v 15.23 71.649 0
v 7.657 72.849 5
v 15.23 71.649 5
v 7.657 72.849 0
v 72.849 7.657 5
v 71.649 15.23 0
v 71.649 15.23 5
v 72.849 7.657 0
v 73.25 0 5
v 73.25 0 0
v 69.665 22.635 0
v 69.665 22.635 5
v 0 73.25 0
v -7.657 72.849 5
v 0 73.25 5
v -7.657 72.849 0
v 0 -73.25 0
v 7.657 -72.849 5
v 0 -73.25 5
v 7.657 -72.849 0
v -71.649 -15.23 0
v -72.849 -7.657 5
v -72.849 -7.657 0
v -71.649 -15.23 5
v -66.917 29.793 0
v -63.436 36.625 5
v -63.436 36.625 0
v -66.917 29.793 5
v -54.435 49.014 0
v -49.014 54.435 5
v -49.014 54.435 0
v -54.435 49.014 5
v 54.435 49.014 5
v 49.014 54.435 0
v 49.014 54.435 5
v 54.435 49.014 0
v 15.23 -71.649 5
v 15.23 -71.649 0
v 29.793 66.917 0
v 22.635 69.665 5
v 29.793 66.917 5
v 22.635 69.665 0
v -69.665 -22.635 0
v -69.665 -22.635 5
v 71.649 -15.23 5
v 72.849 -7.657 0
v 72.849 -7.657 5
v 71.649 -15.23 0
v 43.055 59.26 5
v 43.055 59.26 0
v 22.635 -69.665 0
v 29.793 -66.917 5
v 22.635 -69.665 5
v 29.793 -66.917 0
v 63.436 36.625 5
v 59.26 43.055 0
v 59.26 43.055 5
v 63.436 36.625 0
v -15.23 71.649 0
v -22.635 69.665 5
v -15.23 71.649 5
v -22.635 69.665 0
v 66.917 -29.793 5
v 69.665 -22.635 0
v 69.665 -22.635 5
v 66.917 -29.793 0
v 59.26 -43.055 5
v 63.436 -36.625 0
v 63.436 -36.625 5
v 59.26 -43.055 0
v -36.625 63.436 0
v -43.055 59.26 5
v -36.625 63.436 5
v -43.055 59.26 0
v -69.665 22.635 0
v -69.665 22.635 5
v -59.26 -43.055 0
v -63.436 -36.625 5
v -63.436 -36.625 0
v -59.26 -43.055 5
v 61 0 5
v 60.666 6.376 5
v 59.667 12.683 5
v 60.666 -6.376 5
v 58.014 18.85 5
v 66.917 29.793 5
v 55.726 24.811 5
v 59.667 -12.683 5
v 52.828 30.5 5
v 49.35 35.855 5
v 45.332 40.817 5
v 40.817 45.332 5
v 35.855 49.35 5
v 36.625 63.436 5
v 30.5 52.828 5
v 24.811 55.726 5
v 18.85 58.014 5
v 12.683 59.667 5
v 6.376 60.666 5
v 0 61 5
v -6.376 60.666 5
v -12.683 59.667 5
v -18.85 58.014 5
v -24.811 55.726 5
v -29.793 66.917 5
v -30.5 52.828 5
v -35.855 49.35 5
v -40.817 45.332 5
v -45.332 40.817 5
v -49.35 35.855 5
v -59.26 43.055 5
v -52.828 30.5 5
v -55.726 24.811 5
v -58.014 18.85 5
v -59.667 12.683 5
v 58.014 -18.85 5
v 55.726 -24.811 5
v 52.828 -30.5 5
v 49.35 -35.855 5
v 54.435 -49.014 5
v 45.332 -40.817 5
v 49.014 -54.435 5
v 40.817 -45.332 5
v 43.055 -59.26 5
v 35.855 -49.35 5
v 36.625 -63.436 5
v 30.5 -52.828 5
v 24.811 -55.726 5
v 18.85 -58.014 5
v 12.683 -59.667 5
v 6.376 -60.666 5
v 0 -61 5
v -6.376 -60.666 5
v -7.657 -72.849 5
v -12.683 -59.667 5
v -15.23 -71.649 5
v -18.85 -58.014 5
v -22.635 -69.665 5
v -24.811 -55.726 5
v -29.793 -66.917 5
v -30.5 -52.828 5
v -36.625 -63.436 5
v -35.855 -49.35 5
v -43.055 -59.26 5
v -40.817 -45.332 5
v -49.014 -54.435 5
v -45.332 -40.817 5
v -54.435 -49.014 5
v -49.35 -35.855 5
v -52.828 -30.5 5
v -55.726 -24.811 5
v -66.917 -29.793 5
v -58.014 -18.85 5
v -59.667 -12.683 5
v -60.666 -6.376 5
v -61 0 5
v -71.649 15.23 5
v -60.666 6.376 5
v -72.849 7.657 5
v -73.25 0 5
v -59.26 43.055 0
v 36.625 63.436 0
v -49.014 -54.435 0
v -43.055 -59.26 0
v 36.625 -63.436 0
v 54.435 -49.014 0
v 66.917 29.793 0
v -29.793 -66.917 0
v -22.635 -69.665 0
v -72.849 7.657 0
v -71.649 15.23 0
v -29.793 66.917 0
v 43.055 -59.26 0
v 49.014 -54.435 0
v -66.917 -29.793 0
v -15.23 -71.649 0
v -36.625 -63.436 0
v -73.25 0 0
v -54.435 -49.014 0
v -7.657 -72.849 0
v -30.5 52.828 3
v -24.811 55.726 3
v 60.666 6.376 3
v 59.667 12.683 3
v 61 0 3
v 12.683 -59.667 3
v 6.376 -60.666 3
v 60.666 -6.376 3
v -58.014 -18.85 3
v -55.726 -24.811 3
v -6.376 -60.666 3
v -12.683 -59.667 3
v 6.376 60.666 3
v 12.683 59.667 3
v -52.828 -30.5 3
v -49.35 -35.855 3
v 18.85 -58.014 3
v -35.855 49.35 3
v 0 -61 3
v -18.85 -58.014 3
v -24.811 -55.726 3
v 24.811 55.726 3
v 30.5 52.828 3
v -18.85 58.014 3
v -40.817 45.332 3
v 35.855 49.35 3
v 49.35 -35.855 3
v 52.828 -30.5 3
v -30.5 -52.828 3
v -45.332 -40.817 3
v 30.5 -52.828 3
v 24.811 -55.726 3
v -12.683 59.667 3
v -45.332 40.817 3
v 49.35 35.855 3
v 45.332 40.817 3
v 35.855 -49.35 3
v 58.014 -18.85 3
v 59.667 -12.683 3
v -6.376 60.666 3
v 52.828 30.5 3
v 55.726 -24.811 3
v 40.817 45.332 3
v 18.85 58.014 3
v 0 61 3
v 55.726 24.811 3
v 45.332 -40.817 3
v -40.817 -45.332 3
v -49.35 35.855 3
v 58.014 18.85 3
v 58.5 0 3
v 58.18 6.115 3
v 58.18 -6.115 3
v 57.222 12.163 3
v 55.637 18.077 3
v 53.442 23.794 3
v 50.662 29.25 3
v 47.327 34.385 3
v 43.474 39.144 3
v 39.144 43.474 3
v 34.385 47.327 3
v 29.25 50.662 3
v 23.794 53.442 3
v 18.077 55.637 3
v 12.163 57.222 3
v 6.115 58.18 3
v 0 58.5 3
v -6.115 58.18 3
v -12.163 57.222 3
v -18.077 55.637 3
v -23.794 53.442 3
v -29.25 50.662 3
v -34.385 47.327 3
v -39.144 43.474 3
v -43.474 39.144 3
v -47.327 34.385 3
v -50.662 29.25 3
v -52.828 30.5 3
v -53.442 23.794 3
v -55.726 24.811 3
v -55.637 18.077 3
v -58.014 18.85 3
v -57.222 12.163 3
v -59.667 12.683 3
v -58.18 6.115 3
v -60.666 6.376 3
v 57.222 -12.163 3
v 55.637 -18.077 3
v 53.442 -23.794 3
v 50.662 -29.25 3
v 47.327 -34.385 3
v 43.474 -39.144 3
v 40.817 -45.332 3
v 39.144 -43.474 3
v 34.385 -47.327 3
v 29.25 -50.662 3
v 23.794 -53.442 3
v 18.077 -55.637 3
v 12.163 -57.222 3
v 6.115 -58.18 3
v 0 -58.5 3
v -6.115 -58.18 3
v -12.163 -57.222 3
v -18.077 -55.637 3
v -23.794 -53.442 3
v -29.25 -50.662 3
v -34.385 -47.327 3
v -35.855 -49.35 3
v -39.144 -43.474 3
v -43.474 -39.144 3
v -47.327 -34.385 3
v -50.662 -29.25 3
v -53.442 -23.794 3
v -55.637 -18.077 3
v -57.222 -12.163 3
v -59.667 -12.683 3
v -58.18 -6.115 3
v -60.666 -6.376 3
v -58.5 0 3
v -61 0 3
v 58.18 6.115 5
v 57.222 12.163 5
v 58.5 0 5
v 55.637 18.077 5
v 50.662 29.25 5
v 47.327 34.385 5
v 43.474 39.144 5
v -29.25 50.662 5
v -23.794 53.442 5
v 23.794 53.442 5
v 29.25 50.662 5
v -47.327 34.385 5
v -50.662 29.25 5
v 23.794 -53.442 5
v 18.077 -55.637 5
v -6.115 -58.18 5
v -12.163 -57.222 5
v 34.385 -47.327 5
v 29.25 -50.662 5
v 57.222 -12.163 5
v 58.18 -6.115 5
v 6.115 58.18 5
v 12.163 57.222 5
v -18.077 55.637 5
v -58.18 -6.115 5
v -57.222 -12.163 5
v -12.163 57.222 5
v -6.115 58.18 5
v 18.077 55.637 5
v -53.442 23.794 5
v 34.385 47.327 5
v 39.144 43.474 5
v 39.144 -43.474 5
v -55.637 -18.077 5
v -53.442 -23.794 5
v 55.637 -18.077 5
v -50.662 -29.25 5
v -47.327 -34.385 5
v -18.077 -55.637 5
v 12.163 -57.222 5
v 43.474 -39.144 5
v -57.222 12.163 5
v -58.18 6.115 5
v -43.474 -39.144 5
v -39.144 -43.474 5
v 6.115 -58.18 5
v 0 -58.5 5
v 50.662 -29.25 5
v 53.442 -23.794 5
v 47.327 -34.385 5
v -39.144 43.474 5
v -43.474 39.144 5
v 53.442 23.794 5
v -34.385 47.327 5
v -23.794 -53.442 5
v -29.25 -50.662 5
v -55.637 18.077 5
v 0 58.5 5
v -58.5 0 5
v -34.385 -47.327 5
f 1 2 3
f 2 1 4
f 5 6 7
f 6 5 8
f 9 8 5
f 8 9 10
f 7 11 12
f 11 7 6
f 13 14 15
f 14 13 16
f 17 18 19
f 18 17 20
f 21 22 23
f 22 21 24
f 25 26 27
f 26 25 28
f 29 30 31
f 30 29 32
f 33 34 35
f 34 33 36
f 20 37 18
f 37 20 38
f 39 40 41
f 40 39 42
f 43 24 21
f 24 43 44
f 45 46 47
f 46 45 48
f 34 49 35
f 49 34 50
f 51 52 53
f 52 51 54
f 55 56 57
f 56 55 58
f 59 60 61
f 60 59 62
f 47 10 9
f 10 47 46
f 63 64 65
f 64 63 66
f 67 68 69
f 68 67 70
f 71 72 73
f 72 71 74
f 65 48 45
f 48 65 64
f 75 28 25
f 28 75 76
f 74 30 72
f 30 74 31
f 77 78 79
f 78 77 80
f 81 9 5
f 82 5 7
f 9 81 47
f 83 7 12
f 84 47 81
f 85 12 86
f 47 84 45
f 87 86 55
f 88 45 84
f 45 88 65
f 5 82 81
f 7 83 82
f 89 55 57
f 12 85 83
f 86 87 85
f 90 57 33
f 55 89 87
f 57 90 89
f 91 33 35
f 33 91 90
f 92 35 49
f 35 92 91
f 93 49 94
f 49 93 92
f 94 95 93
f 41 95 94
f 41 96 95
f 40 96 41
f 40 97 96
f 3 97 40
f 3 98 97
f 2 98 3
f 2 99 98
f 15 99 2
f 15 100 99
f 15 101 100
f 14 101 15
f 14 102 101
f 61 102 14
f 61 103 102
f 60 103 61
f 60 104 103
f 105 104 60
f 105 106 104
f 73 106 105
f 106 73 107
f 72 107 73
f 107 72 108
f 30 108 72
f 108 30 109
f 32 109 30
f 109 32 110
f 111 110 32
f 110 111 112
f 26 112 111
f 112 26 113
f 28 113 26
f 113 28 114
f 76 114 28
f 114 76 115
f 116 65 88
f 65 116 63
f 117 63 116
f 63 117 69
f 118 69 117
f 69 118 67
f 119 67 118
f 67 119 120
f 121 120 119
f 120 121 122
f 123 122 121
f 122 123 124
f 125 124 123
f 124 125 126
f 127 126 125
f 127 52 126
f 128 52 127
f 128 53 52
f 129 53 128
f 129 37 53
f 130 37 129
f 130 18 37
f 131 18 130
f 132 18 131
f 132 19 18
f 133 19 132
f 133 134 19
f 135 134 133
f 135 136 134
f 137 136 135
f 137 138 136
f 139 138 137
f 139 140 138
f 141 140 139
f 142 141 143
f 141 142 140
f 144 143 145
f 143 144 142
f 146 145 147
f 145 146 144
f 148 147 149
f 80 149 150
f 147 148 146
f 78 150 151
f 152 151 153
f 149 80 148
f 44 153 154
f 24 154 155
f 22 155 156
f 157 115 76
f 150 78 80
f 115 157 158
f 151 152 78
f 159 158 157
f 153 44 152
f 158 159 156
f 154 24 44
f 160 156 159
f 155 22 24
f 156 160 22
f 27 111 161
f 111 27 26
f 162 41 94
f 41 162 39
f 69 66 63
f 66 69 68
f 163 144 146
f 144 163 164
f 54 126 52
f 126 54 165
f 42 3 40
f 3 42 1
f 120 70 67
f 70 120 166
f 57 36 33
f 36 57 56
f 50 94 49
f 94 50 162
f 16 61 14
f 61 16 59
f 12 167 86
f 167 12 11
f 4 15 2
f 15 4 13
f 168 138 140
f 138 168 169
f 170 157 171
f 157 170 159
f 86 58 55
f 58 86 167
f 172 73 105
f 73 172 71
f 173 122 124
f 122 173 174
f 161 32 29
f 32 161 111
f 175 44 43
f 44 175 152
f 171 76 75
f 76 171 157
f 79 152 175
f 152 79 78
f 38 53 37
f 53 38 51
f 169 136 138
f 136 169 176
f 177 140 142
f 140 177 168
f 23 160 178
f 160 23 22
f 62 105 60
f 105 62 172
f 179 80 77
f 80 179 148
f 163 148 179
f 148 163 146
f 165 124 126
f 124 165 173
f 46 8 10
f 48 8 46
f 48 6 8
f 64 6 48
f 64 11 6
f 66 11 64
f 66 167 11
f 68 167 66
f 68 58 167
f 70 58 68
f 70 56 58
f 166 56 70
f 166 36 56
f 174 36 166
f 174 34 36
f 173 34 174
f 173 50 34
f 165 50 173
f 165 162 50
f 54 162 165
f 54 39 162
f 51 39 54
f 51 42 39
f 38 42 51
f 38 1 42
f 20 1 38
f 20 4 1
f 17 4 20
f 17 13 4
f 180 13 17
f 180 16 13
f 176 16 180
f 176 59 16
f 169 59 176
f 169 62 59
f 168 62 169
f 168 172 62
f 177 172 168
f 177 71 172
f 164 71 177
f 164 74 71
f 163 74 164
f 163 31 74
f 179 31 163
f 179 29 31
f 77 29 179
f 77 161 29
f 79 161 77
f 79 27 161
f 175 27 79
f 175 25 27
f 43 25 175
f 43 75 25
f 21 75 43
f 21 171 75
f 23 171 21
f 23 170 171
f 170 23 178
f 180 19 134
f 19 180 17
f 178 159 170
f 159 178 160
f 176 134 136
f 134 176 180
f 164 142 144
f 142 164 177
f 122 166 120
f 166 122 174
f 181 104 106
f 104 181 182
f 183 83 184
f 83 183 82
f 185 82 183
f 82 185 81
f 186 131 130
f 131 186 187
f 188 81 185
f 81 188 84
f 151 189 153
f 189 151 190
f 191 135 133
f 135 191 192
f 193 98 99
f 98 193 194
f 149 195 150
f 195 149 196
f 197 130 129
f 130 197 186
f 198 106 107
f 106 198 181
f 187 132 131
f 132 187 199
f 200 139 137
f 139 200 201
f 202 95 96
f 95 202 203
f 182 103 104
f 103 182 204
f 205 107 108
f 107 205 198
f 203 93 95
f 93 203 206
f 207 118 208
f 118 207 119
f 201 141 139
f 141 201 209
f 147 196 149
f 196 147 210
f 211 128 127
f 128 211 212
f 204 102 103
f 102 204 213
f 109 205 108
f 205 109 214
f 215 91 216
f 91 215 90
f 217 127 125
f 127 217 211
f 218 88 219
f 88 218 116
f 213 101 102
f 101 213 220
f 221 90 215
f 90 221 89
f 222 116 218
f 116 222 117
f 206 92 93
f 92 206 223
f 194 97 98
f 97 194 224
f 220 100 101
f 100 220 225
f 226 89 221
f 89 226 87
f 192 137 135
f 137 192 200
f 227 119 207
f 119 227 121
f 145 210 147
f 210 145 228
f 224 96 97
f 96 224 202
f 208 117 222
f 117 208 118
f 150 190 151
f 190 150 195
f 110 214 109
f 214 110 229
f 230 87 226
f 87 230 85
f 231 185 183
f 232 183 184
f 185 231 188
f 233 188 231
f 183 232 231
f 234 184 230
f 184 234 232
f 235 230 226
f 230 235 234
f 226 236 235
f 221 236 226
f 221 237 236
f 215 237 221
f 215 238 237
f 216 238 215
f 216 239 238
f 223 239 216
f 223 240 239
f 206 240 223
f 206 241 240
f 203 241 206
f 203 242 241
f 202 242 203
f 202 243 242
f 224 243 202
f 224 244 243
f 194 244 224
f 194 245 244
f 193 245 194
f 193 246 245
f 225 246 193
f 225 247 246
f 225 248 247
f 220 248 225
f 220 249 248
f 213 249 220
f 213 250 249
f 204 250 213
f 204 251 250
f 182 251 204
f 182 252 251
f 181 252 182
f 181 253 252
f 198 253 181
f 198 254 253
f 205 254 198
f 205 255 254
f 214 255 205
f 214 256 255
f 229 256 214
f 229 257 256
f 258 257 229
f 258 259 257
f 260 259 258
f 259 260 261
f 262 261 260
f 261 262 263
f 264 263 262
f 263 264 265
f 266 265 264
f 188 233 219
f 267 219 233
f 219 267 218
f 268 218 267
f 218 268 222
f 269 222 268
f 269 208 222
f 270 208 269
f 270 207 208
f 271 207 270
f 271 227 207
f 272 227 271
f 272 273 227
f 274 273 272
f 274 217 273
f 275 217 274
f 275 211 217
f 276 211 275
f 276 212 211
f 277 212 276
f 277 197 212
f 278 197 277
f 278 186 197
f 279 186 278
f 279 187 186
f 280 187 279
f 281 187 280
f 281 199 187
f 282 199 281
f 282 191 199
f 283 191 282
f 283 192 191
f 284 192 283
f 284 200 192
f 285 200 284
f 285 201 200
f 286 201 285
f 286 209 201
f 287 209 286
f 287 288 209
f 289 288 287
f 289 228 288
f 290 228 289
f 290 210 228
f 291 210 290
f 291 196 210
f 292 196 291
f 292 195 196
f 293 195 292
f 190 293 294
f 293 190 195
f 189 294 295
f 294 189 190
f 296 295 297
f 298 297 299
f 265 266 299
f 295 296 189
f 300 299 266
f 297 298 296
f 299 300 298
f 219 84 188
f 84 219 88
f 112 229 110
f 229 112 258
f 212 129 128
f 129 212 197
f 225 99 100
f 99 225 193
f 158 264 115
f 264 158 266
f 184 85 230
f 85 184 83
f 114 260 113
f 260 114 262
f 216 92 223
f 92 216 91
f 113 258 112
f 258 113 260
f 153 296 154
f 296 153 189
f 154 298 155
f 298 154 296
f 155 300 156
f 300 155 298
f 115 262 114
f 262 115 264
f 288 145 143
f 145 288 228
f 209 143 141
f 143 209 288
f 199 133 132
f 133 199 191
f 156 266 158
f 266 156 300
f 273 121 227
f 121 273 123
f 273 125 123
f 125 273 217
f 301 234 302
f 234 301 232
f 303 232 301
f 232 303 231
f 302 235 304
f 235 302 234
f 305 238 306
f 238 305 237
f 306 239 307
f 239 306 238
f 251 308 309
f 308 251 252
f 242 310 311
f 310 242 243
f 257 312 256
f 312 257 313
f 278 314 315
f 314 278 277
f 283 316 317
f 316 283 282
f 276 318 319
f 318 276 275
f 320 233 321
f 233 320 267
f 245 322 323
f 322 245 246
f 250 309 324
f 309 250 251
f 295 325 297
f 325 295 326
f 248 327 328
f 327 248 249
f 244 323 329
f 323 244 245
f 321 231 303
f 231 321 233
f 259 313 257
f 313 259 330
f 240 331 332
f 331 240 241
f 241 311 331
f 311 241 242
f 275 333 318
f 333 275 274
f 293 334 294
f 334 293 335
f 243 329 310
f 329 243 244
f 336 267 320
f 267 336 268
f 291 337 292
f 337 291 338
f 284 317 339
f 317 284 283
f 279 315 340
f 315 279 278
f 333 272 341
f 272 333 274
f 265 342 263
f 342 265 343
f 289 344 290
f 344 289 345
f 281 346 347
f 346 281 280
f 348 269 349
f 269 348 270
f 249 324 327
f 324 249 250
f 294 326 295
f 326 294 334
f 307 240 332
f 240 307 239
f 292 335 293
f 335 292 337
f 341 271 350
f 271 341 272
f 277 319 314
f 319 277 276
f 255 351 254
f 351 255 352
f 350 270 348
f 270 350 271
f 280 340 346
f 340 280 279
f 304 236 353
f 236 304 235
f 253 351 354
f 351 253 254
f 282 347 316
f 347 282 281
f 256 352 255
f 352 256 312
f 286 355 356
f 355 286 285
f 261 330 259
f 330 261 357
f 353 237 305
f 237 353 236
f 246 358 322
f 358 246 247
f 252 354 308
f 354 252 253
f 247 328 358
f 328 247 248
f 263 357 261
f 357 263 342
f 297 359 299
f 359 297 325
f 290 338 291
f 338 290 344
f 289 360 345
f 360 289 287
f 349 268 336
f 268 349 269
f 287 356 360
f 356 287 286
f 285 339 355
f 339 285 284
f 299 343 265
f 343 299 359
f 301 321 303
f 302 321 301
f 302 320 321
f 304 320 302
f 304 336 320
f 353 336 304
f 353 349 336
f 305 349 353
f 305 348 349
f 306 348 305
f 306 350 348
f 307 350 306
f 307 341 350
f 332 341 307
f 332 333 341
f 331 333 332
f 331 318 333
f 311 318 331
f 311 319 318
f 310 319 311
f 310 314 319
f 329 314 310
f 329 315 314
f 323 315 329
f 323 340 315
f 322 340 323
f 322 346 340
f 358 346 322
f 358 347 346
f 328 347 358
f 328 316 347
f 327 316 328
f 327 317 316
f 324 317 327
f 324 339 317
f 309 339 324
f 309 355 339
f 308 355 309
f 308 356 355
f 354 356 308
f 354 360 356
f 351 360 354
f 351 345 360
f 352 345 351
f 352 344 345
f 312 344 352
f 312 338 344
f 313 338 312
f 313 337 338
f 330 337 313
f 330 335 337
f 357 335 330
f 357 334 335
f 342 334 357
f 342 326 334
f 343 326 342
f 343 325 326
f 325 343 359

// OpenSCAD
//Buridan paradigm///
//fly plaform v0.1//
//CC BY SA 4.0 //
// first design by Andre Maia Chagas 17/01/2025//
//units in mm //

platD = 117;
platH = 5;
platEdgeD = 146.5;//platD+8;
tolerance = 0.1;
$fn=60;

//make platform
difference(){
cylinder(d=platEdgeD,h=platH,$fn=60);
translate([0,0,3]){
cylinder(d=platD+5,h=2.5);
}//end translate
}//end difference
cylinder(d=platD,h=platH);
%cylinder(d=platEdgeD+22.8,h=platH,$fn=6);
